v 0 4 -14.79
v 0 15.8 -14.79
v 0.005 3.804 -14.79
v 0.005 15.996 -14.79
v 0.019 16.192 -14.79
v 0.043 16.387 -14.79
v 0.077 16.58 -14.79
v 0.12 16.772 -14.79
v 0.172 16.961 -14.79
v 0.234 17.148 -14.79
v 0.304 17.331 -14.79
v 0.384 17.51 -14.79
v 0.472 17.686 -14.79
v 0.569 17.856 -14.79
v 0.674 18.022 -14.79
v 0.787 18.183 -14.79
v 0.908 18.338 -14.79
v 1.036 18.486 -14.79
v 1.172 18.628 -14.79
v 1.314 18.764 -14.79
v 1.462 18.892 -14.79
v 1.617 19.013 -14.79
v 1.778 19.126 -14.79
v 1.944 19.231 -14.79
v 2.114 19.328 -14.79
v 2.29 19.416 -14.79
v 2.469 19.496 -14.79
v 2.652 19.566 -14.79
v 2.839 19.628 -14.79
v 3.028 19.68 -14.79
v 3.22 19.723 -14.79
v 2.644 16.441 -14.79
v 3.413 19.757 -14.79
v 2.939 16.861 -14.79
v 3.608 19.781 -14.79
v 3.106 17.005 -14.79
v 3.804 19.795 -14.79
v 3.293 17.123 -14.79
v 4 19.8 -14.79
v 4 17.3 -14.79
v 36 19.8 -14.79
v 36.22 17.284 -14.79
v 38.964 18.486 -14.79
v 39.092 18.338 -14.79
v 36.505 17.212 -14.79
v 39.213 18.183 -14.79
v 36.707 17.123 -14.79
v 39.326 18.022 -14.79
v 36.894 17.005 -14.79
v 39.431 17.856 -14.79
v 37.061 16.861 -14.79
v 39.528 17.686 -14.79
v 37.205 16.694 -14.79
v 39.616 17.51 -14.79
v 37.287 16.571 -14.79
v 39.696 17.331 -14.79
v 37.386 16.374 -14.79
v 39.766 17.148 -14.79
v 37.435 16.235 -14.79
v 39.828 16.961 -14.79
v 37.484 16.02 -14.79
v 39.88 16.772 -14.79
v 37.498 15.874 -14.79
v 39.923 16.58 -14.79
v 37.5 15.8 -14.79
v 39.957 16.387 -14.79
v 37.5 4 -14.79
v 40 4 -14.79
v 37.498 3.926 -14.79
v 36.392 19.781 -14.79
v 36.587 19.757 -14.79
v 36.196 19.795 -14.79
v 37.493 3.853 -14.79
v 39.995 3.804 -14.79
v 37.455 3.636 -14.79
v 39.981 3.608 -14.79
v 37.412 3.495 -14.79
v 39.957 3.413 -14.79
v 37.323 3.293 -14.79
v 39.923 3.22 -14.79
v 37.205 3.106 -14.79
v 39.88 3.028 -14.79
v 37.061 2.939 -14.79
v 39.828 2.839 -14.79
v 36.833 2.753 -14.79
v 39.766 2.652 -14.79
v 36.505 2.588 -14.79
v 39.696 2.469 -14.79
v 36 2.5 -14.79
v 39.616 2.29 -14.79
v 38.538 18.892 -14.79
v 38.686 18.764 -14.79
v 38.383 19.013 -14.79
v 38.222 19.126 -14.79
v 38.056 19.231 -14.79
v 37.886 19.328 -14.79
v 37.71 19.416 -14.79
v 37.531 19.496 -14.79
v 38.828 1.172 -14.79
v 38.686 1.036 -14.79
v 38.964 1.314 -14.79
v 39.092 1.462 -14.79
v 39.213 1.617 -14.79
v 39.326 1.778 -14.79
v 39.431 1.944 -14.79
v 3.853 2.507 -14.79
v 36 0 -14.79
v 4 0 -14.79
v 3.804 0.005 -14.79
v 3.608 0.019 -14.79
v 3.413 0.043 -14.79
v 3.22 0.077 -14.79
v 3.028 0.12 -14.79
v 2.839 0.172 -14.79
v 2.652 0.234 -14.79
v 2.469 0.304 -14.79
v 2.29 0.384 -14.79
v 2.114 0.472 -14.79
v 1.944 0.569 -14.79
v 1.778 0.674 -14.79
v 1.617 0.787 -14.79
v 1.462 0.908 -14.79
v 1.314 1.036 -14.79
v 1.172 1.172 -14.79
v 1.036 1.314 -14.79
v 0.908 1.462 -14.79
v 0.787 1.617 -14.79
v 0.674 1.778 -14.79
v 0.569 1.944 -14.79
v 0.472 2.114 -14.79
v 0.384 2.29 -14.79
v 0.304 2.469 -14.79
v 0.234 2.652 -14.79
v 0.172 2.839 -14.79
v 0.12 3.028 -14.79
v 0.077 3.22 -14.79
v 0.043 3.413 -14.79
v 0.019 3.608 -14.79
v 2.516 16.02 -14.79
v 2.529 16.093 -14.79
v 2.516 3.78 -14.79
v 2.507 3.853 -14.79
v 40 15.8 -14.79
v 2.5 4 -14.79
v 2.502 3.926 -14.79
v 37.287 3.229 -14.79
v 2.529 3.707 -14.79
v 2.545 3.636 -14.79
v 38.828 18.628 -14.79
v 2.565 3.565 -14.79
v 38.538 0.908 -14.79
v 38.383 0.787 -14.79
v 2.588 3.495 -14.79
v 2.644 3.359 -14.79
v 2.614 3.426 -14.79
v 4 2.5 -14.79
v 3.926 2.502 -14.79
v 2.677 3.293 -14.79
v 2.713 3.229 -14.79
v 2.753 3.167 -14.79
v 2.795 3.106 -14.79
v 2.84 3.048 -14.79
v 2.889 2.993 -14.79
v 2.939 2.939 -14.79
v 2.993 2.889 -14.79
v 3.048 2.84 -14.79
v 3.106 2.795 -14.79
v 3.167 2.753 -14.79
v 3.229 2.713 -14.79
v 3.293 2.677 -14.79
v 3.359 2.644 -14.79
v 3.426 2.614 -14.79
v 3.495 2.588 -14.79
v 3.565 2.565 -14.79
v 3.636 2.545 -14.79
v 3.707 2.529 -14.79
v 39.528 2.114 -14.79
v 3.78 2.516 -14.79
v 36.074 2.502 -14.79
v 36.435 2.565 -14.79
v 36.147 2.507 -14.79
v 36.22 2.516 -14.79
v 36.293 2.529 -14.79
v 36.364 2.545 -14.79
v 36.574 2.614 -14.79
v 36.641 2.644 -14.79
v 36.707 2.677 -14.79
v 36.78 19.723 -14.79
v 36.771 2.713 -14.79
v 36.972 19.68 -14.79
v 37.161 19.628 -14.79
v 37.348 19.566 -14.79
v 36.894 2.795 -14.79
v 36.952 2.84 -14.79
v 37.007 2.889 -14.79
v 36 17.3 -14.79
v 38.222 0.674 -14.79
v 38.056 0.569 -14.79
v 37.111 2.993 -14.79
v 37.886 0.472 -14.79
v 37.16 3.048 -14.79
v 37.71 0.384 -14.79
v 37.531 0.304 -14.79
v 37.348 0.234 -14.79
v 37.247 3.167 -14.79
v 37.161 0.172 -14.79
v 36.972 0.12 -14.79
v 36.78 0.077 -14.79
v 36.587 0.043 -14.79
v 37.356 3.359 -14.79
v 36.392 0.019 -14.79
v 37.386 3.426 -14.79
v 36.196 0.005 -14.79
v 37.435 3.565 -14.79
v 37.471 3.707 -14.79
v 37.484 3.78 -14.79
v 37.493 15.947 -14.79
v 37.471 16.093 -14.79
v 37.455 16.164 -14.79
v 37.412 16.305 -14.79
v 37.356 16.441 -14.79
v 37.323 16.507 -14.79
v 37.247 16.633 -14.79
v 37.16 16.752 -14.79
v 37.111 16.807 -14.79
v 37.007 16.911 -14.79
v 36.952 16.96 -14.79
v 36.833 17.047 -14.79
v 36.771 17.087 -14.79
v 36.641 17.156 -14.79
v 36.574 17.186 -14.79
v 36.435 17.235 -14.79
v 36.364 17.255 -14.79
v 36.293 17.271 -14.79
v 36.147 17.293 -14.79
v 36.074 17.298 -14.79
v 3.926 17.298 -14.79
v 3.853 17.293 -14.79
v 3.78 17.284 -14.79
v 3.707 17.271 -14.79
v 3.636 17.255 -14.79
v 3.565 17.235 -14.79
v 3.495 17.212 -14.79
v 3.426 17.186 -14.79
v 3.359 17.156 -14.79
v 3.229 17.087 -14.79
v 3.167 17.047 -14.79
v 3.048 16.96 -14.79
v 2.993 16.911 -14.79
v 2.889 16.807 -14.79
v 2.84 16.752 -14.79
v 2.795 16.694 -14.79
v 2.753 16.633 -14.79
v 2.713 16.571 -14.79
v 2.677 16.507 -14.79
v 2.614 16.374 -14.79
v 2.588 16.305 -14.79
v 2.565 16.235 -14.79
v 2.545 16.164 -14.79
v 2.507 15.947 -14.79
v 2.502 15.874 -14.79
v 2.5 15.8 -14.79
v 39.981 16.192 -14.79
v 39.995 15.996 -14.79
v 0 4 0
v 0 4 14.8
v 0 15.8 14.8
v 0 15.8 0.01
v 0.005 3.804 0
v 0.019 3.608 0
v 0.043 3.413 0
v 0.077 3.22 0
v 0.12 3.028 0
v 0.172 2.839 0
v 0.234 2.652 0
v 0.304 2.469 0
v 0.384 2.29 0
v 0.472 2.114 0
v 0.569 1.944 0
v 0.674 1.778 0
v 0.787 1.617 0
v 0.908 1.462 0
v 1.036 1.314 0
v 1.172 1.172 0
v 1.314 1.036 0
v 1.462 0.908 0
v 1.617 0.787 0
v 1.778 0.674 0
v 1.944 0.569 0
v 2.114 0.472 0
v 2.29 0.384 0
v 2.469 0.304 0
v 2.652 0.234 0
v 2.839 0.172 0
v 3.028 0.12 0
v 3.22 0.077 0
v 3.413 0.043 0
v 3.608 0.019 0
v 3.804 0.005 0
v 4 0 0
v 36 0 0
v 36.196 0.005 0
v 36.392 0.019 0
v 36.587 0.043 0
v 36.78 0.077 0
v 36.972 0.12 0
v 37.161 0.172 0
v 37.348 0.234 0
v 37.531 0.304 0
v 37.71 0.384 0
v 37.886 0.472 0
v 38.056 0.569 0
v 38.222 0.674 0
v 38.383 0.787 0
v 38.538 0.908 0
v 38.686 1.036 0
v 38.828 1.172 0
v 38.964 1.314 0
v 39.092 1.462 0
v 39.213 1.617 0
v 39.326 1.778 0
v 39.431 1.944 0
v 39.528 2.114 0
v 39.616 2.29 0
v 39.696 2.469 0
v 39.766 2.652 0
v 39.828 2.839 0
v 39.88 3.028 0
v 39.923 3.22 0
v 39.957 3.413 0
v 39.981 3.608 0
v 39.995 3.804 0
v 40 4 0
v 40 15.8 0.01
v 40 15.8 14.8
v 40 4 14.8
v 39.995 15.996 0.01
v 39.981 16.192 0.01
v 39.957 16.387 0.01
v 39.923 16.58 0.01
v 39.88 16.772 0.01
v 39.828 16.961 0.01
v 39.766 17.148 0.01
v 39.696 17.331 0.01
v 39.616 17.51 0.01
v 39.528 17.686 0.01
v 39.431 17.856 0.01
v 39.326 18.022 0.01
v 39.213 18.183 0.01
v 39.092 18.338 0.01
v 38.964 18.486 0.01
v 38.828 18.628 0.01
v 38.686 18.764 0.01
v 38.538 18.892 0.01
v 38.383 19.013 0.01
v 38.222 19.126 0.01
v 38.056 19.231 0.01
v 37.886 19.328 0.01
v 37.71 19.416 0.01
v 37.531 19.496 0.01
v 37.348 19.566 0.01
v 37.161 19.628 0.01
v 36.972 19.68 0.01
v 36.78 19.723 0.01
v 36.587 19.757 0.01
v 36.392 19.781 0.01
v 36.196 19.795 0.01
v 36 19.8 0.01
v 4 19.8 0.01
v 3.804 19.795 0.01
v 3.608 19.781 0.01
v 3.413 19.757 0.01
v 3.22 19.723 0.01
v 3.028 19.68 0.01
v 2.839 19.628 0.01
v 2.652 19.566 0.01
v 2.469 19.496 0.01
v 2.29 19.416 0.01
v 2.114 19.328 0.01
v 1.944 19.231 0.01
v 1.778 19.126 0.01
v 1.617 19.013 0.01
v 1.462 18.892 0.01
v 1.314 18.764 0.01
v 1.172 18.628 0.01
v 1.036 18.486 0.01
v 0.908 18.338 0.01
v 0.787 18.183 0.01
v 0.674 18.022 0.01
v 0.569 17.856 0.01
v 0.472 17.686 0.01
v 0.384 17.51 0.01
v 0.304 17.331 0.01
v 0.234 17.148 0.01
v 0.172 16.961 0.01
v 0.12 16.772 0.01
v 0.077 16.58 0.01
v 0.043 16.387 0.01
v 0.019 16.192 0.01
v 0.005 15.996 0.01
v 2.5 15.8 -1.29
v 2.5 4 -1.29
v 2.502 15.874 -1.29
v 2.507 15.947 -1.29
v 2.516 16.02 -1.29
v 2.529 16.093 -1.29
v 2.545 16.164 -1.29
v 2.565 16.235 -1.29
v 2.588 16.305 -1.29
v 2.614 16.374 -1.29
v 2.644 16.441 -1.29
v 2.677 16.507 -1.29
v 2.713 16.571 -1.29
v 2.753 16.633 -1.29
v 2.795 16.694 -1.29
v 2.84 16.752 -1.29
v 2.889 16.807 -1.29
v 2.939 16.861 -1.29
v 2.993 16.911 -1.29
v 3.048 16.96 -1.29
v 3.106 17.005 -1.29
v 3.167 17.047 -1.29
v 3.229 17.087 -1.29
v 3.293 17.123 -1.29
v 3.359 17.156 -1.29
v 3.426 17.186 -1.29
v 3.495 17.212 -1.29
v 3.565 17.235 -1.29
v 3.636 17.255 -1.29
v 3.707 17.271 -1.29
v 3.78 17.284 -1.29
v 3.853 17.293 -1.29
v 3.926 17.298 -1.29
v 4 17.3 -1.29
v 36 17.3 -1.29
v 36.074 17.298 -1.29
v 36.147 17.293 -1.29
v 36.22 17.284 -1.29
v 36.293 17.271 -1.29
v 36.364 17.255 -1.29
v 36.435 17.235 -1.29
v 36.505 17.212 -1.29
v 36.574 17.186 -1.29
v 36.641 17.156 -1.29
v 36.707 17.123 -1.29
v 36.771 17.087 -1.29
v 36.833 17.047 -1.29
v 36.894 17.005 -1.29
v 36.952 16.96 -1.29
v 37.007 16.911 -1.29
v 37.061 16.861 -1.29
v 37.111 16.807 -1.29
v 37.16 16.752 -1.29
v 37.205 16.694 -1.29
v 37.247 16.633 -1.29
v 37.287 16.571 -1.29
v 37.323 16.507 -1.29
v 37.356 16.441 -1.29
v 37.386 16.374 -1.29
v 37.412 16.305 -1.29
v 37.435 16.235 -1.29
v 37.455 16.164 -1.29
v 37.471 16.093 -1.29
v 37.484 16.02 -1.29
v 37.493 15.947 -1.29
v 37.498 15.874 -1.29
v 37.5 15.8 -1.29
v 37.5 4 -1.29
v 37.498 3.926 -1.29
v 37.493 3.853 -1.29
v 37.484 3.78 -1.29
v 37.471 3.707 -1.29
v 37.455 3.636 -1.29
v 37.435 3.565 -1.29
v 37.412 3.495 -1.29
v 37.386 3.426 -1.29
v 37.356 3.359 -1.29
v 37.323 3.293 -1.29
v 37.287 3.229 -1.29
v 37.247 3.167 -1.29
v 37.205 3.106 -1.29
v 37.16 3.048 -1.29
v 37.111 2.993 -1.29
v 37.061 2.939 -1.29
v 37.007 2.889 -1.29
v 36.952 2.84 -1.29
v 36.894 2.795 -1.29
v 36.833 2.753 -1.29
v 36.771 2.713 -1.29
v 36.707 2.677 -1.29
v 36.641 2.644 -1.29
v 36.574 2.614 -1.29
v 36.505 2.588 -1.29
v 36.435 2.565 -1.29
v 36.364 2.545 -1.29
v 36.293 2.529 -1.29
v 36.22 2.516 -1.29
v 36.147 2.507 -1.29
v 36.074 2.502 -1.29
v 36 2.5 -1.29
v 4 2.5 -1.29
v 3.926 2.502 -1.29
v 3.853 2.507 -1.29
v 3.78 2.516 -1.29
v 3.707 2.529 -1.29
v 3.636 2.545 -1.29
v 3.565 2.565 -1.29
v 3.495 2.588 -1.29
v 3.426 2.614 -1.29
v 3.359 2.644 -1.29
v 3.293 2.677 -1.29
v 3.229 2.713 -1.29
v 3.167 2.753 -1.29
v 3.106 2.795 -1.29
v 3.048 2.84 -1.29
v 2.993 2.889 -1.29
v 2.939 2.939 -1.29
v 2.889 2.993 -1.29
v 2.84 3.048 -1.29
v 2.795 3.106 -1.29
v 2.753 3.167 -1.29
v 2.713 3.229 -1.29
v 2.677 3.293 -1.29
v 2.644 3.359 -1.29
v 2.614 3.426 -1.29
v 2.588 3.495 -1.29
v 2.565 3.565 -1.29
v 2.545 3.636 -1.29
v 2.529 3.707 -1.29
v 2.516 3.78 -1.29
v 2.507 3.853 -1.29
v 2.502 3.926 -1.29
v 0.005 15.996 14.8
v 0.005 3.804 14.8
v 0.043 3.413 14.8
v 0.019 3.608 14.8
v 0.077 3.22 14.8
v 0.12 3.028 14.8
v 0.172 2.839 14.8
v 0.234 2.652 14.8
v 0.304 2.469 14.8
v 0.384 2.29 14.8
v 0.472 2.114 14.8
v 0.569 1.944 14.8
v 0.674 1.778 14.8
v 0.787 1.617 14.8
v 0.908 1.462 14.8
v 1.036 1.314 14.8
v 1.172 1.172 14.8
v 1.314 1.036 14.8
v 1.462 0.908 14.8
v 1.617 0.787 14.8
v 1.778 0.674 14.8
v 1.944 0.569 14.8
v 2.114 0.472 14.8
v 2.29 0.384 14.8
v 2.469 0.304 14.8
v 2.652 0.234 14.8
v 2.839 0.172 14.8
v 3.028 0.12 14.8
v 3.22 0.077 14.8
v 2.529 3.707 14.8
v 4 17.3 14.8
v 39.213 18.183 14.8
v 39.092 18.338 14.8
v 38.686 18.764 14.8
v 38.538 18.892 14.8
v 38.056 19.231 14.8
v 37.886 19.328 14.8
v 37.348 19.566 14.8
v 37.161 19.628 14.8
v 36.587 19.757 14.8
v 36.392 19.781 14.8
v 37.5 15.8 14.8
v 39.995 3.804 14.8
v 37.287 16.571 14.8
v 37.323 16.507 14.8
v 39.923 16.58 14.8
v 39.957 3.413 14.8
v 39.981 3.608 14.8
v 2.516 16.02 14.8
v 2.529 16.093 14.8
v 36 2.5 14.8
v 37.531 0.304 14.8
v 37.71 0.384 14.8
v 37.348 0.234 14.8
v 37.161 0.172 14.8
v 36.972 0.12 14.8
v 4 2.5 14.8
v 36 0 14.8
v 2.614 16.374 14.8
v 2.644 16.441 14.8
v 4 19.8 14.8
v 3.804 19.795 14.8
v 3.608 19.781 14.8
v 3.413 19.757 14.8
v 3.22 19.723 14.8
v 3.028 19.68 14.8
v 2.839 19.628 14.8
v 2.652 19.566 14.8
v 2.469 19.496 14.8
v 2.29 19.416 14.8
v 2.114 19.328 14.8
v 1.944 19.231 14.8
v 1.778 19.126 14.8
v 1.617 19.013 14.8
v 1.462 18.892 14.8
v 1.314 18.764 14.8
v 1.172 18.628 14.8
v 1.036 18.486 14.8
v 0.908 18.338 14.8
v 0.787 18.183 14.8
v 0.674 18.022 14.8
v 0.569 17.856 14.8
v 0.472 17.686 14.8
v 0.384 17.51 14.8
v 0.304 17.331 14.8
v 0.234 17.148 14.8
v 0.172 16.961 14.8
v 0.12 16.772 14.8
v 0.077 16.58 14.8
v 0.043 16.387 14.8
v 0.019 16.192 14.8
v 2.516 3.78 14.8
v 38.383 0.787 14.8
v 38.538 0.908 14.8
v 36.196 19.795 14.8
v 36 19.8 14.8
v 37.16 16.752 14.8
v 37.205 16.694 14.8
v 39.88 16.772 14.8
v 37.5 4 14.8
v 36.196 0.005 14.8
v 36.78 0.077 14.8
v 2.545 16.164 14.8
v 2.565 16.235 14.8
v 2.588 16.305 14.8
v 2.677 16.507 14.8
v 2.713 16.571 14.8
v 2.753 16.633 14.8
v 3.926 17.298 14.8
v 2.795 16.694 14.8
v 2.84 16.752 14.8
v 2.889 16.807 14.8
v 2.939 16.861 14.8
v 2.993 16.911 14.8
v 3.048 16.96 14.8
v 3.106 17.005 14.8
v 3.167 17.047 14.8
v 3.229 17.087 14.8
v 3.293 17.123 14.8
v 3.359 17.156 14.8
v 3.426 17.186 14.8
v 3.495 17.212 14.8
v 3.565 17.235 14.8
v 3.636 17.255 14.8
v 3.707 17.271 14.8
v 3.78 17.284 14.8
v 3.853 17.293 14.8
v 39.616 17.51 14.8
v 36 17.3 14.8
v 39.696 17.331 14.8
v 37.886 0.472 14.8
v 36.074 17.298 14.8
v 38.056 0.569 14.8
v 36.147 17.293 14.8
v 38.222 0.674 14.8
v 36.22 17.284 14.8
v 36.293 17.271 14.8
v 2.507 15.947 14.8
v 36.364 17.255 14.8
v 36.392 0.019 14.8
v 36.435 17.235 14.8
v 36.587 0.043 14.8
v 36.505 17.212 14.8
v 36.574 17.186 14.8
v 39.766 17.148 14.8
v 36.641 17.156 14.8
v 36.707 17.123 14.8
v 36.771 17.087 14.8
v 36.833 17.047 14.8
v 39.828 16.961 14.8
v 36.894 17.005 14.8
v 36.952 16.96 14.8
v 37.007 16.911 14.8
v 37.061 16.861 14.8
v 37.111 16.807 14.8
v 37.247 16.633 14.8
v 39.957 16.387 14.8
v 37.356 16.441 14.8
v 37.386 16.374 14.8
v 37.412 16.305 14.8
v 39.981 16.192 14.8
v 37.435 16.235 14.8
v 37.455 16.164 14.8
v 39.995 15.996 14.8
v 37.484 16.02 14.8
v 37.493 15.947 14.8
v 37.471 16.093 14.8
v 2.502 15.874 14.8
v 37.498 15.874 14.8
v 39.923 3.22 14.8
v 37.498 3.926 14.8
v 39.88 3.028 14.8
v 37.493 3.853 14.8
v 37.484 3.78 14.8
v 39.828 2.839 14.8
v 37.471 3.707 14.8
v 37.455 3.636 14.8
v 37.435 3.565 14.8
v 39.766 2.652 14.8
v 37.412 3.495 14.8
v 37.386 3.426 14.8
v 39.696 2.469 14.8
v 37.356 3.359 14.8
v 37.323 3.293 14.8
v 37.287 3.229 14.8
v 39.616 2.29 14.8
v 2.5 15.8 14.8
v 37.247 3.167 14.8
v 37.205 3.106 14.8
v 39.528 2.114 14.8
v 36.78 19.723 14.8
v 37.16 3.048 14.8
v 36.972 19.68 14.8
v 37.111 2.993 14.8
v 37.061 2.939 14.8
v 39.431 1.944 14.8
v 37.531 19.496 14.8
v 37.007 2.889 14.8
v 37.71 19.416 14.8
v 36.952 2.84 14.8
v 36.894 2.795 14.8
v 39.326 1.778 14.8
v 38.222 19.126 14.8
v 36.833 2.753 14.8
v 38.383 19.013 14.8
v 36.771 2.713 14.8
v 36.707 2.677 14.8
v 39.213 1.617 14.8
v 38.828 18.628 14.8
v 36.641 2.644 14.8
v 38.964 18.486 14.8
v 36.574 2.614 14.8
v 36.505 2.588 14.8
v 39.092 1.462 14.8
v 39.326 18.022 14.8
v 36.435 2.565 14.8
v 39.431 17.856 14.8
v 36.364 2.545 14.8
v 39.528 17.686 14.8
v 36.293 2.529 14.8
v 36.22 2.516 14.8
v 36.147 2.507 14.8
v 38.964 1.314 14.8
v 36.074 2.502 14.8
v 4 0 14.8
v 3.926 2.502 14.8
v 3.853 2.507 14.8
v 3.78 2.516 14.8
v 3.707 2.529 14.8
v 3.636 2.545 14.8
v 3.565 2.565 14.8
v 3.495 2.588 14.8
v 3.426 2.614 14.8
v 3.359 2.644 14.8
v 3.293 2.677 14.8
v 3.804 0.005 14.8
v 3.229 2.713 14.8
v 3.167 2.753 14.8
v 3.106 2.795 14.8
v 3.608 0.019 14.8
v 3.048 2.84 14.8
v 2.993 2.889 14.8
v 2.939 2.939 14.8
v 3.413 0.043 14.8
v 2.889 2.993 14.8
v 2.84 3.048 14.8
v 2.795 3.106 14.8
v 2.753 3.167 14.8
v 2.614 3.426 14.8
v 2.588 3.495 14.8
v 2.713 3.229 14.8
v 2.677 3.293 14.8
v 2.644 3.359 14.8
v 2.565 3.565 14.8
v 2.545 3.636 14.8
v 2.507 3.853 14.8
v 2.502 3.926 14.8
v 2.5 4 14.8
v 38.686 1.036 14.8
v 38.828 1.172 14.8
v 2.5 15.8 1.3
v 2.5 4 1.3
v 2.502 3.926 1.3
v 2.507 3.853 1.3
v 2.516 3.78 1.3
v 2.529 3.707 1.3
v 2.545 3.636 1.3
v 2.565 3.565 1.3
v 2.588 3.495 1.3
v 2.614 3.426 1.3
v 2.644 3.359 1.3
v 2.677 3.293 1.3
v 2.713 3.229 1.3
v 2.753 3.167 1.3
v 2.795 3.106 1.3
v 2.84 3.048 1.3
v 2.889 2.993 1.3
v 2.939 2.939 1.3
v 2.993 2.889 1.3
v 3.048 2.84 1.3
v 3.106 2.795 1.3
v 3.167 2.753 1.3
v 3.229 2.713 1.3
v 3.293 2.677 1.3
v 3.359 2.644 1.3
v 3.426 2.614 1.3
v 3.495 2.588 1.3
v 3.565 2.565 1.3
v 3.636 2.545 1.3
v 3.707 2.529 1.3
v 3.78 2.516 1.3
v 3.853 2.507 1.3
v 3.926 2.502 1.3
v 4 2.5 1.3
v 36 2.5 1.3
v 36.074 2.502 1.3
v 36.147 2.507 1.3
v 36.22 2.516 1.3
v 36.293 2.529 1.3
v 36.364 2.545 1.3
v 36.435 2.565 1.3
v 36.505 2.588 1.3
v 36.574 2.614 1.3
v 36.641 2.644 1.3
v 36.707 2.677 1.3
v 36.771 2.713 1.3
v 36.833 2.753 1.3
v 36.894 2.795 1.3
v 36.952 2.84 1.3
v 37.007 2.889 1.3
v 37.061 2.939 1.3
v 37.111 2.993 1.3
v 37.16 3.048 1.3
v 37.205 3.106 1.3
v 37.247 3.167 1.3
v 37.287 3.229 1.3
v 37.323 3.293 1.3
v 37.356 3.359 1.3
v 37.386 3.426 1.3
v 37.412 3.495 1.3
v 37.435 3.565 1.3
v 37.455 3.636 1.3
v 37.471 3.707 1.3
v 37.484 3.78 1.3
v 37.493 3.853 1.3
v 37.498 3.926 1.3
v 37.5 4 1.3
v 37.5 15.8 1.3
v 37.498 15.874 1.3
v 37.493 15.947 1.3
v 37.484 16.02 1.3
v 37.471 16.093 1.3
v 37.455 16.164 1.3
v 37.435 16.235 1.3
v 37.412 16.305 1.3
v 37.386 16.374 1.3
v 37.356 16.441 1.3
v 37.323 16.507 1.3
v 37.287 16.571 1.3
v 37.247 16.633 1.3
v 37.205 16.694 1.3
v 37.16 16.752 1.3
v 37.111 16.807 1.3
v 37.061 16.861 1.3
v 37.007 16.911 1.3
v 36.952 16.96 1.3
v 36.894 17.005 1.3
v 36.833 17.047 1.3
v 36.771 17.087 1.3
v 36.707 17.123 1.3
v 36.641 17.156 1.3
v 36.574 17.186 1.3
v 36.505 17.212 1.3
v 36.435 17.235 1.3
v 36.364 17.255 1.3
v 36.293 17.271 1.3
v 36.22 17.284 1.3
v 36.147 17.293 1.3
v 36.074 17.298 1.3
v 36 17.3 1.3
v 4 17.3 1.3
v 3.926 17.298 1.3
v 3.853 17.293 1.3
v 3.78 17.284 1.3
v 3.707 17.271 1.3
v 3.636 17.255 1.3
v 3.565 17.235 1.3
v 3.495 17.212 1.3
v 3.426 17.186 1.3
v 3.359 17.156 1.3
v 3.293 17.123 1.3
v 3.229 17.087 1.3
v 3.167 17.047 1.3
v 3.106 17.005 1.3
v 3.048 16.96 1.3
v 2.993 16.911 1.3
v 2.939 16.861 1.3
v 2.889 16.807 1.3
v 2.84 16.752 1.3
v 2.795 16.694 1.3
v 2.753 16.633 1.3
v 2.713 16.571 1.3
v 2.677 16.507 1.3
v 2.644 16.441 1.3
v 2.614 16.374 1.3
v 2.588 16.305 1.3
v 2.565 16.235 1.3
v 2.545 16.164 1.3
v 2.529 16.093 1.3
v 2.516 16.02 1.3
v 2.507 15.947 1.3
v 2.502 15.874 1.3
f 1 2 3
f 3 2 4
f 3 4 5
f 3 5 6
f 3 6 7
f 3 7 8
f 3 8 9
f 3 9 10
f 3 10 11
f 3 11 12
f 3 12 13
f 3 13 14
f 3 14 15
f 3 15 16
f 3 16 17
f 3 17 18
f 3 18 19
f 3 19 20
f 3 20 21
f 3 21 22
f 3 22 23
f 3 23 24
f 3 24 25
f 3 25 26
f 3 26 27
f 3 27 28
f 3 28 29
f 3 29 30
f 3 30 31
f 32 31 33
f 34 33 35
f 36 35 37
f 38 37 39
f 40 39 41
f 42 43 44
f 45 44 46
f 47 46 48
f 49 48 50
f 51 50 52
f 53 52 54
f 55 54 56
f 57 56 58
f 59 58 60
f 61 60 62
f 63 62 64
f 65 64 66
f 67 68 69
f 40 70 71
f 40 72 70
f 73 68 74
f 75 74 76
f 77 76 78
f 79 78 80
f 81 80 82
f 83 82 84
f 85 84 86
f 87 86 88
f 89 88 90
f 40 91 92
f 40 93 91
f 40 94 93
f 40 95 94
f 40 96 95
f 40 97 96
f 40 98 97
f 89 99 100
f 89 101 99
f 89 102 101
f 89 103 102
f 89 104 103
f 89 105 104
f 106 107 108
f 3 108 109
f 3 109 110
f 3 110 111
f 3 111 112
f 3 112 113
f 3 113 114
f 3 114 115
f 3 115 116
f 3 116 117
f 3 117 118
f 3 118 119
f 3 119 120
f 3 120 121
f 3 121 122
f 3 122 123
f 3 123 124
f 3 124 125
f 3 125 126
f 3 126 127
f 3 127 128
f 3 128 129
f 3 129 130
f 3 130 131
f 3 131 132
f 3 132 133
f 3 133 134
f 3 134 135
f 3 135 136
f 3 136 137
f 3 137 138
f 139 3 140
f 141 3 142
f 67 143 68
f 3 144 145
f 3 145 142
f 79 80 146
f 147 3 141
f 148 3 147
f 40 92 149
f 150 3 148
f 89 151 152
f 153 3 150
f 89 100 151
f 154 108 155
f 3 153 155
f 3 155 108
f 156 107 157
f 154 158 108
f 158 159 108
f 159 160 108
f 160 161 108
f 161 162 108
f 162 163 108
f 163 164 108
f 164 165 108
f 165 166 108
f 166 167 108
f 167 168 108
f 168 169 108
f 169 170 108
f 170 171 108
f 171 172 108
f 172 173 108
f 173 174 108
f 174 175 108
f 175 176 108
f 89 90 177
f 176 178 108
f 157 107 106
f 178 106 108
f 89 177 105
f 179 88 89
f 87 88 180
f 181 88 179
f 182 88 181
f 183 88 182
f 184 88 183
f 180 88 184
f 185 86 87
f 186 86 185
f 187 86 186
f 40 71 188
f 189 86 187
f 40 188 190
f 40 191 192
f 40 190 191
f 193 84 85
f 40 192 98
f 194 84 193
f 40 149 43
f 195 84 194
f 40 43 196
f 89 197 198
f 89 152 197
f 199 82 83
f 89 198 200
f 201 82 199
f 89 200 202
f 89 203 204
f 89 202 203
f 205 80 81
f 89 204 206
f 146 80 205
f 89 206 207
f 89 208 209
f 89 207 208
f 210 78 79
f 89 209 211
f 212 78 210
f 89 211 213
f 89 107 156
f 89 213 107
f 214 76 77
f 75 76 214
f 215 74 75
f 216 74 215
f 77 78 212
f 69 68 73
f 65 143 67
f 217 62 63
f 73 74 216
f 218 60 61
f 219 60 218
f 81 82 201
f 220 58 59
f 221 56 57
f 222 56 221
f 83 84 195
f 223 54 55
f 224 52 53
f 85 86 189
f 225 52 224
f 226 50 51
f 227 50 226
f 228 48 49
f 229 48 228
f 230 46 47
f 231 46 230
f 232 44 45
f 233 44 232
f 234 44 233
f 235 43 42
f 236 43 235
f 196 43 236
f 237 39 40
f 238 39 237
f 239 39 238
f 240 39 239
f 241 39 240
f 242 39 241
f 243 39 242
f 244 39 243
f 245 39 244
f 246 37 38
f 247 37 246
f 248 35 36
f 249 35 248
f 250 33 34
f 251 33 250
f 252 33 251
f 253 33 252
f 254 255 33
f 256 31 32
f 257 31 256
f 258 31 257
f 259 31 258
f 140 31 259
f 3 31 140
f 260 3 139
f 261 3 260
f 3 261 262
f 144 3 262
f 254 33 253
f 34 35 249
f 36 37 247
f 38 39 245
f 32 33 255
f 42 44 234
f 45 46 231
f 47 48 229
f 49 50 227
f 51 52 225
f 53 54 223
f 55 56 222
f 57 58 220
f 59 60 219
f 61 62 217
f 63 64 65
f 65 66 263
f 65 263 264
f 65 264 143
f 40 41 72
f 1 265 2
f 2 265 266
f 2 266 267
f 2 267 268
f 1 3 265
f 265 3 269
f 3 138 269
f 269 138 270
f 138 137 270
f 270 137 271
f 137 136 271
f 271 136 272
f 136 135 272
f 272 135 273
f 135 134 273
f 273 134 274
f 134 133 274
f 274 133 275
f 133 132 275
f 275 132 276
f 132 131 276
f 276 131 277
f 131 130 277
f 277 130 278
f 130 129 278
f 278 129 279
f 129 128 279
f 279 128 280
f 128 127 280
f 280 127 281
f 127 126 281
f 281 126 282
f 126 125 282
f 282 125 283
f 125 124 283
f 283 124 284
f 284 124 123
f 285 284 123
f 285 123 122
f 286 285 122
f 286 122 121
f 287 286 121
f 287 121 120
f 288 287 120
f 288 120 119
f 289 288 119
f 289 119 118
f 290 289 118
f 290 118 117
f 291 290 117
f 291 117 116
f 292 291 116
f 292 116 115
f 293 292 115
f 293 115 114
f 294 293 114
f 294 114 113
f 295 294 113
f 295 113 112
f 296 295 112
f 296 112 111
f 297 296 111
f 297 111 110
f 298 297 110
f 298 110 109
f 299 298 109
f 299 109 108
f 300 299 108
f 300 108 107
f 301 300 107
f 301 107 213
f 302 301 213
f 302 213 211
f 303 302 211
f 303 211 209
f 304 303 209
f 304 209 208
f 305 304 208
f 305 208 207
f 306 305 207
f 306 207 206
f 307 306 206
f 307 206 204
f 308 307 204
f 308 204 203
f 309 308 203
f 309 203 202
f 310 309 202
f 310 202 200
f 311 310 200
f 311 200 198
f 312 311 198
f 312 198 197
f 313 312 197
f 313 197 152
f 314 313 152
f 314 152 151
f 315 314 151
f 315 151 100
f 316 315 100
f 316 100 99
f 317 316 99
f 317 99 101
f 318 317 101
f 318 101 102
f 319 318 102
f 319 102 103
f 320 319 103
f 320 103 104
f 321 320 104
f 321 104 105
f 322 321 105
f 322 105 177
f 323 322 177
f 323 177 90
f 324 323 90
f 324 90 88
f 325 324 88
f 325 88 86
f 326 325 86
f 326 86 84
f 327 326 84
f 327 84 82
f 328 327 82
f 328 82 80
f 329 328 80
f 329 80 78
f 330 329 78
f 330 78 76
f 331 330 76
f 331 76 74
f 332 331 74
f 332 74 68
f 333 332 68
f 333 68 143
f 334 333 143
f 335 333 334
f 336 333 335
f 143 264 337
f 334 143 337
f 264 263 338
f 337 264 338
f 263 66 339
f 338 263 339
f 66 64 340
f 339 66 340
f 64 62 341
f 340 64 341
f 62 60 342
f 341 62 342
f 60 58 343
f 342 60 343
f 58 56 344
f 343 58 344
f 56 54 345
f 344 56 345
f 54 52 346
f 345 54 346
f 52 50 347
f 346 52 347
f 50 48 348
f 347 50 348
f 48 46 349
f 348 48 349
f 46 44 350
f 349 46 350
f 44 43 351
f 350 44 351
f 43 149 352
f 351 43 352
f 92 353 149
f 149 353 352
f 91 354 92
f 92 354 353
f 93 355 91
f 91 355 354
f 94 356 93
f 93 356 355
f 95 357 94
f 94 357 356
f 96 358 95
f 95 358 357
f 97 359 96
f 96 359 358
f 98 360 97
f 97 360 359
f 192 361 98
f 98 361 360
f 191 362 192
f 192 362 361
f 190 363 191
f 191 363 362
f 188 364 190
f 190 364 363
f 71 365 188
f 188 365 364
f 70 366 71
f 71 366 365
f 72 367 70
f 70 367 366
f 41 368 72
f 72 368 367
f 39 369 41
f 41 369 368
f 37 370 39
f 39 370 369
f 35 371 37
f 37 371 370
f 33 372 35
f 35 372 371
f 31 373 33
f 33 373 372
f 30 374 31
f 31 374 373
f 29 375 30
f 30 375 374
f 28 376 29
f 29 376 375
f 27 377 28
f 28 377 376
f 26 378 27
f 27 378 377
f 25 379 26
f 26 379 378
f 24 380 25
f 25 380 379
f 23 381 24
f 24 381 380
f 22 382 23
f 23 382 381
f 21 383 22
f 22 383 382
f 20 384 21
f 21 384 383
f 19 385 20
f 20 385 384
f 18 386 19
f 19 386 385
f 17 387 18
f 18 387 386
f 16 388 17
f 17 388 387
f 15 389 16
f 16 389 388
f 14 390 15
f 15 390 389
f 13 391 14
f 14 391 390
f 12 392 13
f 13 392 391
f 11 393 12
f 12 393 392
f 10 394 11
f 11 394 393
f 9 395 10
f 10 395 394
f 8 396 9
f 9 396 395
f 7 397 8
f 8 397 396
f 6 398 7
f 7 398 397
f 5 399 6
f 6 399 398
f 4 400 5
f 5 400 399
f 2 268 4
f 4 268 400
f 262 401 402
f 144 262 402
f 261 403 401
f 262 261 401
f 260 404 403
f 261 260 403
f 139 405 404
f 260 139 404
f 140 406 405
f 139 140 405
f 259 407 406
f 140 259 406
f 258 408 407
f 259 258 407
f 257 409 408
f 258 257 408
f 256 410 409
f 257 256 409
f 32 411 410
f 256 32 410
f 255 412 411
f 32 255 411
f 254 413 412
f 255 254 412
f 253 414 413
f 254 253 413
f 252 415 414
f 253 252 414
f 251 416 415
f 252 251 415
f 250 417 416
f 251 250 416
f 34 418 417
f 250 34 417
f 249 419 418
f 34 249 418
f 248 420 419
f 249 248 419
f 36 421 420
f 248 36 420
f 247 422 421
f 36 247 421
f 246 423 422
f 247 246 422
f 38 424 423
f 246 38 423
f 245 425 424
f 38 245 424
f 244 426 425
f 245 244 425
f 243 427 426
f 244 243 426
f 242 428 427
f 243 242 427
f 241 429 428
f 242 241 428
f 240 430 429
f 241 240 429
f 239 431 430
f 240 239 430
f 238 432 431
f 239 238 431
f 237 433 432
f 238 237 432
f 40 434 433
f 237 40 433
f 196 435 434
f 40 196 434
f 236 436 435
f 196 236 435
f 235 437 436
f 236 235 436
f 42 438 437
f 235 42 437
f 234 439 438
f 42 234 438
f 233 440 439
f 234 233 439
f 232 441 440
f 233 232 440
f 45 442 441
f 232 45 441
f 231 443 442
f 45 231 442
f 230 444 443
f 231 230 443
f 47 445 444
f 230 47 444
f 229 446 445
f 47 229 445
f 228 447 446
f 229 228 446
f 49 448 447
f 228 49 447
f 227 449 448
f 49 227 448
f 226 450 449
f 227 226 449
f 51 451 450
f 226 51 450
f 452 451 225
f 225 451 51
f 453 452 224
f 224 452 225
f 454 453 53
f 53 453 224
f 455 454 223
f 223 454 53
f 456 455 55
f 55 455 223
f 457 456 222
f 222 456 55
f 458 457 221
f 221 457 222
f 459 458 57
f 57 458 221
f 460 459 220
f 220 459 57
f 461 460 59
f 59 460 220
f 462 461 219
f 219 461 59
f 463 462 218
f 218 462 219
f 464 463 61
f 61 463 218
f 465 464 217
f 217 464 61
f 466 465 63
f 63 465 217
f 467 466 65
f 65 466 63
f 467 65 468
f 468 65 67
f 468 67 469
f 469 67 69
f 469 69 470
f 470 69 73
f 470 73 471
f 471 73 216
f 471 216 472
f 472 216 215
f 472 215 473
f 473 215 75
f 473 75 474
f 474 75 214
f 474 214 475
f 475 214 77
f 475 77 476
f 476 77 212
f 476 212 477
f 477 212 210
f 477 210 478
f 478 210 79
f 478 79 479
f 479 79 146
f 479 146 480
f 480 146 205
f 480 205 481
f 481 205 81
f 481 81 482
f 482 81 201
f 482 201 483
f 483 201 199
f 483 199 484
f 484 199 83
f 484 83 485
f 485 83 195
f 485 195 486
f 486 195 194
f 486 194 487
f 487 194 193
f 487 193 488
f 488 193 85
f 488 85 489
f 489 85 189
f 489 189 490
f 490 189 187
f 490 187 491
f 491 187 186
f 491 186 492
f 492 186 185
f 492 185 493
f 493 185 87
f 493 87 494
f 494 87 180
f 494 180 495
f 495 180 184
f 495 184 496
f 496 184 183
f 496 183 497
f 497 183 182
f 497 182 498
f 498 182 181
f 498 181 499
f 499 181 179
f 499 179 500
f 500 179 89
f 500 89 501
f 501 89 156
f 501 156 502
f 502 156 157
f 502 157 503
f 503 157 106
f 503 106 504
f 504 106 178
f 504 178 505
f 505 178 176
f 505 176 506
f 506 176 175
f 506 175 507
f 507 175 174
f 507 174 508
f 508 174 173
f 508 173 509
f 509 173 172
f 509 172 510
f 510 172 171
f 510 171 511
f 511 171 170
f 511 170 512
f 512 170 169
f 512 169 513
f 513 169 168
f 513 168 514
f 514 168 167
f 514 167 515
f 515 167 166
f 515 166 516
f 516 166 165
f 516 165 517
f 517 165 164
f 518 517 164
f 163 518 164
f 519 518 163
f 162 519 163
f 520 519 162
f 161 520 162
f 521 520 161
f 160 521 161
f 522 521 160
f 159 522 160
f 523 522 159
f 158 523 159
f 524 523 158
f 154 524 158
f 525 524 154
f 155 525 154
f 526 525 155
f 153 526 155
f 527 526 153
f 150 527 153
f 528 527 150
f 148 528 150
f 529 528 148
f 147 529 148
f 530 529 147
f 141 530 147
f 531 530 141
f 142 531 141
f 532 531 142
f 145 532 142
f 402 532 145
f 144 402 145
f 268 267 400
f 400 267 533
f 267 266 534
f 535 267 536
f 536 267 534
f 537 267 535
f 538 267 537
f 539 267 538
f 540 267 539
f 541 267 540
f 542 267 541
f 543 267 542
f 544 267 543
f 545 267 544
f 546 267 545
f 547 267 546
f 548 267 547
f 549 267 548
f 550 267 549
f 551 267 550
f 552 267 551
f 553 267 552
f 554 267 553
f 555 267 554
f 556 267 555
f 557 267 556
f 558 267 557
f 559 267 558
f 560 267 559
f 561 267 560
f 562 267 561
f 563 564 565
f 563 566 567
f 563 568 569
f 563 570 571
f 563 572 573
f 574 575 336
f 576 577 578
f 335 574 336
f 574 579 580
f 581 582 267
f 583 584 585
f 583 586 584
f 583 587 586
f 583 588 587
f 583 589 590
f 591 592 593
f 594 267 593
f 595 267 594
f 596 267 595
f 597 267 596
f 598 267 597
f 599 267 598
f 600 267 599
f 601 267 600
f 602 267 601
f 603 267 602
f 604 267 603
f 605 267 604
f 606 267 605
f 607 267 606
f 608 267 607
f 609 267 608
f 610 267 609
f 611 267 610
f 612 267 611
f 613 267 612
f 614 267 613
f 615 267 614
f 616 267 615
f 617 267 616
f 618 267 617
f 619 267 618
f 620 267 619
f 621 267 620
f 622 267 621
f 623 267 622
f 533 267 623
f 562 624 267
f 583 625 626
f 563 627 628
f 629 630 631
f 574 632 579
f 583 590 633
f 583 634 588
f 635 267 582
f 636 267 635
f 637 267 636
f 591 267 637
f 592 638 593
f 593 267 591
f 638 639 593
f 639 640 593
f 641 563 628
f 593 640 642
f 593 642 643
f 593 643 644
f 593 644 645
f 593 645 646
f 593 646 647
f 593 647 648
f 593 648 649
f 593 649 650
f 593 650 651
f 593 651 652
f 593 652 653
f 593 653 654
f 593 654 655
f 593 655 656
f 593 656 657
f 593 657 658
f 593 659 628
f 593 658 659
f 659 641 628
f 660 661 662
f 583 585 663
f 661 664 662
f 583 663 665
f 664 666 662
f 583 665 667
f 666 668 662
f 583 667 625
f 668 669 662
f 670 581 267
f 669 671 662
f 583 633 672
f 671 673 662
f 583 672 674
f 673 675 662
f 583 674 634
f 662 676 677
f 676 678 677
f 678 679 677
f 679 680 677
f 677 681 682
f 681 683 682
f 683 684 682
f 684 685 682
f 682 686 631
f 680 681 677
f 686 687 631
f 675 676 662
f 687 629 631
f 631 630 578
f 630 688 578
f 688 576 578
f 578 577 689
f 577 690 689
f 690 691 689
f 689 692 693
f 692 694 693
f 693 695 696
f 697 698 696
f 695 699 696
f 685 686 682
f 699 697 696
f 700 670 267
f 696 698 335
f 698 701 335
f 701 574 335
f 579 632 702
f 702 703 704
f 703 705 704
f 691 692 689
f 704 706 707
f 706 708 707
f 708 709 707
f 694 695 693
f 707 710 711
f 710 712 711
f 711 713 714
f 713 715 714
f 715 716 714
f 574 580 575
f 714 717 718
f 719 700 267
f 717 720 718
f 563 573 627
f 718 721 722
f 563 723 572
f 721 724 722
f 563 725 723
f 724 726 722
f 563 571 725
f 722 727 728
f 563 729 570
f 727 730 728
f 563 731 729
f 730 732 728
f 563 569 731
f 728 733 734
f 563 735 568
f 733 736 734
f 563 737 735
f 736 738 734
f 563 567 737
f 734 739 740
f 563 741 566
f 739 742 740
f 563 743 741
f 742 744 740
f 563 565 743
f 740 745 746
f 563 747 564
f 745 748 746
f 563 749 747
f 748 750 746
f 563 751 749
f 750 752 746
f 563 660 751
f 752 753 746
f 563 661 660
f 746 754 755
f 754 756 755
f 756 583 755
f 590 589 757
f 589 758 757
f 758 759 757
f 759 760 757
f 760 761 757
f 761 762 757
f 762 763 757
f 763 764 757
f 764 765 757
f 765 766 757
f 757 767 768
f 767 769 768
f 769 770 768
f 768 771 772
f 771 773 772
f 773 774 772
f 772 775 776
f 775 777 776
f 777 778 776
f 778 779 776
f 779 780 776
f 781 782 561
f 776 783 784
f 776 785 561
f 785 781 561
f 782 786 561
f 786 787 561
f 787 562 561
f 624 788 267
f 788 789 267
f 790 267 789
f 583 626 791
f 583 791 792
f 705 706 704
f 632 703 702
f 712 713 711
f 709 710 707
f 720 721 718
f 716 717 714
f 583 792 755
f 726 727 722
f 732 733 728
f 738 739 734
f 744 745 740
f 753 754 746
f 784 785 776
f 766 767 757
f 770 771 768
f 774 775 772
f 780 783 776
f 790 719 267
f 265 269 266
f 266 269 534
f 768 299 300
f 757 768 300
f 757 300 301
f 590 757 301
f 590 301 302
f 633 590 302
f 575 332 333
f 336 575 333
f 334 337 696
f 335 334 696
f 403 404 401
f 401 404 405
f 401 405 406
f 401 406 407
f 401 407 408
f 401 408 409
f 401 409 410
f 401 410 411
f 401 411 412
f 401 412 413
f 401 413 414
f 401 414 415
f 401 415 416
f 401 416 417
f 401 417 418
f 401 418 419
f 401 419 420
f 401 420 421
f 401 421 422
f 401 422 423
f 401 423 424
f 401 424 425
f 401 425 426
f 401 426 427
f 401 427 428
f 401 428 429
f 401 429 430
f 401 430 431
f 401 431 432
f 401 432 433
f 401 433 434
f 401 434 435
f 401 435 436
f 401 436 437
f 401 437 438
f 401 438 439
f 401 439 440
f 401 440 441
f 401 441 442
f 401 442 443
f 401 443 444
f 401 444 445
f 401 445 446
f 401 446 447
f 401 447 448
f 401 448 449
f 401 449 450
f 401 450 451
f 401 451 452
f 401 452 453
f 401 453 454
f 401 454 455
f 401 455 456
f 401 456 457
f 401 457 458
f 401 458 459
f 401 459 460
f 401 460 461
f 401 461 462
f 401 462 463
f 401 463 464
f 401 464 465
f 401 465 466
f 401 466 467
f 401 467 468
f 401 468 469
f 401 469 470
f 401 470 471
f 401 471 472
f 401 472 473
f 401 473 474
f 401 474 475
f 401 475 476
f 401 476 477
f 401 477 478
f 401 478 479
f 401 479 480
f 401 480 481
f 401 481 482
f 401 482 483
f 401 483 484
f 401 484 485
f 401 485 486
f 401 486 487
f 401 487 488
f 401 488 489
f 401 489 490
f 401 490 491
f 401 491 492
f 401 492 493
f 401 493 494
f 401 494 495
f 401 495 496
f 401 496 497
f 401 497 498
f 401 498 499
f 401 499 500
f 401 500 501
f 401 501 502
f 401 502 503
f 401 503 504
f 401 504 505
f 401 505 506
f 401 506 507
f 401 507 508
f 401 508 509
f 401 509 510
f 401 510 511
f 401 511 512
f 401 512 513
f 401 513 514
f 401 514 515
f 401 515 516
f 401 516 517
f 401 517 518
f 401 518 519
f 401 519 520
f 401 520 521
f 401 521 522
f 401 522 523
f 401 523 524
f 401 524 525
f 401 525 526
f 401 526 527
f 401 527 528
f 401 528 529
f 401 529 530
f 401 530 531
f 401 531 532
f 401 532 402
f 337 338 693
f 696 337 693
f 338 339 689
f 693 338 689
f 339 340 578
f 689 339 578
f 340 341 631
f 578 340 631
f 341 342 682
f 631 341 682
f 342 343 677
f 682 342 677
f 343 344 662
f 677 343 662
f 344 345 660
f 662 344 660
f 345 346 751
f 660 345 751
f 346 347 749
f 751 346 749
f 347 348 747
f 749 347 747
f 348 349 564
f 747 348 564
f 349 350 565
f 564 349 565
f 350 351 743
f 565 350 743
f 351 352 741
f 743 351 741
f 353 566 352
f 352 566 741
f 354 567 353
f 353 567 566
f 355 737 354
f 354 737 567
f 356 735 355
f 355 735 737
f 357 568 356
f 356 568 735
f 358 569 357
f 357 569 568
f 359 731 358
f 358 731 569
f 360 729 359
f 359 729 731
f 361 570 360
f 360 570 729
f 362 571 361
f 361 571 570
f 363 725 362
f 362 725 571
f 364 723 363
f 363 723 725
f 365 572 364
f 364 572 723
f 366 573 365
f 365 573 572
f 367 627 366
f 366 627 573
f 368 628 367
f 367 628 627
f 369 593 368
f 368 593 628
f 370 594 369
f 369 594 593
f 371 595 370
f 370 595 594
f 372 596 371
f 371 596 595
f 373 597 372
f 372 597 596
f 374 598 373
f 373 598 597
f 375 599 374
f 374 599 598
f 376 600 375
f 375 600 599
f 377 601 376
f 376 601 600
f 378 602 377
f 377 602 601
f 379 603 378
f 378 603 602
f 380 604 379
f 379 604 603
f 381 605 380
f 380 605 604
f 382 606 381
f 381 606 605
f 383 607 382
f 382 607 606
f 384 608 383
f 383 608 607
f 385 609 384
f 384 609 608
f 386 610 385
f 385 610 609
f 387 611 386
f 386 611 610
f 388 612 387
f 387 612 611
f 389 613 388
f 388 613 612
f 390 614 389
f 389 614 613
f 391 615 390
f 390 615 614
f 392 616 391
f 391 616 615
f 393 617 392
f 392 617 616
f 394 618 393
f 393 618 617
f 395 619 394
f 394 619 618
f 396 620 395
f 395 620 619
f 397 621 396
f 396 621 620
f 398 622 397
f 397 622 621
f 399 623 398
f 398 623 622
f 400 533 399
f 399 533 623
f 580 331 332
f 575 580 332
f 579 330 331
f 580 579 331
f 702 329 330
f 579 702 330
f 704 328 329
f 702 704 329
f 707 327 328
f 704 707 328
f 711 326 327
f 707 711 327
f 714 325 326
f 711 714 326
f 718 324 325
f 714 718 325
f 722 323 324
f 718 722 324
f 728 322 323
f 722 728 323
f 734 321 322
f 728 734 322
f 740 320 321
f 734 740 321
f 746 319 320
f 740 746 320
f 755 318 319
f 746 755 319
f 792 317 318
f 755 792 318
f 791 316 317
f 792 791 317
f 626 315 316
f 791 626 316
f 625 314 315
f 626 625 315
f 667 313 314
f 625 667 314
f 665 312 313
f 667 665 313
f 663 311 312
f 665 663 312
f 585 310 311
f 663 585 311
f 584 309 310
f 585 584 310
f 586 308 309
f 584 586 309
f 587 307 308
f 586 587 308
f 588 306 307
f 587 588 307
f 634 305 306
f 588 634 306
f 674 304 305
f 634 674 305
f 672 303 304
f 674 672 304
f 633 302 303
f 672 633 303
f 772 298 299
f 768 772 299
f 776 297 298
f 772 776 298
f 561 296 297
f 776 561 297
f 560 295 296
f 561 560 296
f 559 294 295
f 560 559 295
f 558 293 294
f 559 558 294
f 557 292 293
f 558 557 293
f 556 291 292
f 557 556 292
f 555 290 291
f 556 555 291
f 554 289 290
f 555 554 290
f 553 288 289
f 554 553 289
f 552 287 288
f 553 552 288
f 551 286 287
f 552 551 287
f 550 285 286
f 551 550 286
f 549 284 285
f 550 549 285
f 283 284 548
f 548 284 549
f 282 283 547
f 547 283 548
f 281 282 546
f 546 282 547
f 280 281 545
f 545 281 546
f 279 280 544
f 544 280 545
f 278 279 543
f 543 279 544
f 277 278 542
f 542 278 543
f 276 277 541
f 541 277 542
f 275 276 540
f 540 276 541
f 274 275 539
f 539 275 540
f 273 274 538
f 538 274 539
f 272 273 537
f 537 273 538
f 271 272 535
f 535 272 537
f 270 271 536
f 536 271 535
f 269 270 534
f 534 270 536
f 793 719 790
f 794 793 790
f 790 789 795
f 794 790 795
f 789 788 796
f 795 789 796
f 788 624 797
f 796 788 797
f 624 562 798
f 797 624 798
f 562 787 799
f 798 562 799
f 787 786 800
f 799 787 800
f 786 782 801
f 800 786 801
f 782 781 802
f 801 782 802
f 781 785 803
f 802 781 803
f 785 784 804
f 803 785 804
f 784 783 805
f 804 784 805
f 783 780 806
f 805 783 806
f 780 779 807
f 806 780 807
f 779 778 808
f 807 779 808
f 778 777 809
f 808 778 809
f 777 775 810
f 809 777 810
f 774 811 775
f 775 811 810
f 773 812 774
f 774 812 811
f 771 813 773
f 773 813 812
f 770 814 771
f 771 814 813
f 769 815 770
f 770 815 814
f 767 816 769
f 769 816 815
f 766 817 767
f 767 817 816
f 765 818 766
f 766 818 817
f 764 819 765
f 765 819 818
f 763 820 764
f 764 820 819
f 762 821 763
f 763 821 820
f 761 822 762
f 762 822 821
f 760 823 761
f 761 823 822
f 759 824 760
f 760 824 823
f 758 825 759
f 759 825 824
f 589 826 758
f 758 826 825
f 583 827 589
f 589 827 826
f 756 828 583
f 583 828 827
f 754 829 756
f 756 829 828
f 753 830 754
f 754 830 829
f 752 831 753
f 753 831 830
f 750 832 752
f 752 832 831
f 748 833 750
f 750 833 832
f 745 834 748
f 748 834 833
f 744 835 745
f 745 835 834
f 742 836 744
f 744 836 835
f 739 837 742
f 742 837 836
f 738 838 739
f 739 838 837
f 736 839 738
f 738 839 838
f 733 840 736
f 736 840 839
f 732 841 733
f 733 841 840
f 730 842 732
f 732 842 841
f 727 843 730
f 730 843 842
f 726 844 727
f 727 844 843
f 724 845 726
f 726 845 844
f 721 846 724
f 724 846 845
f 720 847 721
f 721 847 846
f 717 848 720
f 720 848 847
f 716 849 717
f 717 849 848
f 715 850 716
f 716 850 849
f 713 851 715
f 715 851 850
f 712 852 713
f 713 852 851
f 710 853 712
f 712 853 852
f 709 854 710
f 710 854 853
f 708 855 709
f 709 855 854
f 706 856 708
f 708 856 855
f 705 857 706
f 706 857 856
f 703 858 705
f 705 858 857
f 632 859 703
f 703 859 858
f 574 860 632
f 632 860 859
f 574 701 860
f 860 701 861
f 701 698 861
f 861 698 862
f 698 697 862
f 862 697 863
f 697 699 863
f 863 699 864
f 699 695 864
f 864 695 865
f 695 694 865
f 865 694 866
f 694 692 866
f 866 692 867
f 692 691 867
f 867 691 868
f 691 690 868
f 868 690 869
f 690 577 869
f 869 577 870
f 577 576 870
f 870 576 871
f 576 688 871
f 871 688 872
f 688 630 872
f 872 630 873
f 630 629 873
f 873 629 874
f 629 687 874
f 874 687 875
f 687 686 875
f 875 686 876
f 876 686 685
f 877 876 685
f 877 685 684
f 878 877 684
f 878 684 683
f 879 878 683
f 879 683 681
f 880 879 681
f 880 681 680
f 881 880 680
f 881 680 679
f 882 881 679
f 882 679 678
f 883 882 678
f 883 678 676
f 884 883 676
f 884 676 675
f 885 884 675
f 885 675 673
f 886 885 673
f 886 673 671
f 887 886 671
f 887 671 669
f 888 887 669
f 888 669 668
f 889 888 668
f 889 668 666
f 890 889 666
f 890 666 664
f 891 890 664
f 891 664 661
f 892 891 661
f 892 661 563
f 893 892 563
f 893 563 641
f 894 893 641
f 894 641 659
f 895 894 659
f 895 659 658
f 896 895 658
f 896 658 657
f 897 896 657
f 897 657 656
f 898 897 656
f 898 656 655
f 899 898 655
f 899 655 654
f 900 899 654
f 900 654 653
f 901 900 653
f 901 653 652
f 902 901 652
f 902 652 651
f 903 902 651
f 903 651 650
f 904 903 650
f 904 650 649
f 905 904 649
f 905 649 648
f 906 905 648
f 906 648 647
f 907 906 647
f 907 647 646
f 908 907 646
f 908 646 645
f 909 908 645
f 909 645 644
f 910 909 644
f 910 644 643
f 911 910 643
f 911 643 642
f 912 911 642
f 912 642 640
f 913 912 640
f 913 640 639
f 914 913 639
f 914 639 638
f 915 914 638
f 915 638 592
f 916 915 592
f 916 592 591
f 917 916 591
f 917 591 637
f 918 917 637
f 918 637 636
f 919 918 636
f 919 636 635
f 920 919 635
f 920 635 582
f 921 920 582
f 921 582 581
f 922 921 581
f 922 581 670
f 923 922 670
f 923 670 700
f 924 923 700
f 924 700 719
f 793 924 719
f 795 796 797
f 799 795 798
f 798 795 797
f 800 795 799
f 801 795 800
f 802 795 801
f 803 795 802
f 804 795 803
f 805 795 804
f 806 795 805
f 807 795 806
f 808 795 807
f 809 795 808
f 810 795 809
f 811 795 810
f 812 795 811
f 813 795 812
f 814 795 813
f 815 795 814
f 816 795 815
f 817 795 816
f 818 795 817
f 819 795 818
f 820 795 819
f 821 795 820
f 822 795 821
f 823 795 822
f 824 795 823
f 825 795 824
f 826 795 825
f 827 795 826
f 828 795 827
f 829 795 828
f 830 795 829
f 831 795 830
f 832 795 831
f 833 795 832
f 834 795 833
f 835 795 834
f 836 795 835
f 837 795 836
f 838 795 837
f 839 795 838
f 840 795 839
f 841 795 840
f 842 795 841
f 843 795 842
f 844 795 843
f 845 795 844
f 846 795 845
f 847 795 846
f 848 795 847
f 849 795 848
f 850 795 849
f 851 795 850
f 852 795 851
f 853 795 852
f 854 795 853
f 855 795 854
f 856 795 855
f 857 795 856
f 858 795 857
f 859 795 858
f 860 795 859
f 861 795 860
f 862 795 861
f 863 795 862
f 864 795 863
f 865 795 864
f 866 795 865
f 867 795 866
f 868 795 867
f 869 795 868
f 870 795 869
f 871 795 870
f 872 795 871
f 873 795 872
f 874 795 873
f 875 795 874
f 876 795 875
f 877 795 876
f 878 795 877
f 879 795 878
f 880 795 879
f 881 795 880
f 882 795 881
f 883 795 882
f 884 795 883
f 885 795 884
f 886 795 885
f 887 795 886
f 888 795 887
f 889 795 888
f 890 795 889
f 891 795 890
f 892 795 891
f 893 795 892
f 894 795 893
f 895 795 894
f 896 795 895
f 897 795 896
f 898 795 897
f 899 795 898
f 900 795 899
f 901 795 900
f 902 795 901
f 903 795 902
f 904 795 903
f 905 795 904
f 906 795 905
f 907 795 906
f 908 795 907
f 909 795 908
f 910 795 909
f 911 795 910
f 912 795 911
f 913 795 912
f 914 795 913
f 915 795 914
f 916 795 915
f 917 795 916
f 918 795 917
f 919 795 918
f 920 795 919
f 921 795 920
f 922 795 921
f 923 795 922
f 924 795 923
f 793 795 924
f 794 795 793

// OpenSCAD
$fn=128;
h=14.8;
r=4;
union() {
difference(){
  hull(){
      translate([4,4,0]) cylinder(h=h,r=r);
      translate([36,4,0]) cylinder(h=h,r=r);
      translate([36,15.8,0]) cylinder(h=h,r=r);
      translate([4,15.8,0]) cylinder(h=h,r=r);
  }
  hull() {
      translate([4,4,1.3]) cylinder(h=20, r=1.5);
      translate([36,4,1.3]) cylinder(h=20, r=1.5);
      translate([36,15.8,1.3]) cylinder(h=20, r=1.5);
      translate([4,15.8,1.3]) cylinder(h=20, r=1.5);
  }
}
rotate([180,0,0]) translate([0,-19.8,-0.01]) difference(){
  hull(){
      translate([4,4,0]) cylinder(h=14.8,r=r);
      translate([36,4,0]) cylinder(h=14.8,r=r);
      translate([36,15.8,0]) cylinder(h=14.8,r=r);
      translate([4,15.8,0]) cylinder(h=14.8,r=r);
  }
  hull() {
      translate([4,4,1.3]) cylinder(h=20, r=1.5);
      translate([36,4,1.3]) cylinder(h=20, r=1.5);
      translate([36,15.8,1.3]) cylinder(h=20, r=1.5);
      translate([4,15.8,1.3]) cylinder(h=20, r=1.5);
  }
}
}
